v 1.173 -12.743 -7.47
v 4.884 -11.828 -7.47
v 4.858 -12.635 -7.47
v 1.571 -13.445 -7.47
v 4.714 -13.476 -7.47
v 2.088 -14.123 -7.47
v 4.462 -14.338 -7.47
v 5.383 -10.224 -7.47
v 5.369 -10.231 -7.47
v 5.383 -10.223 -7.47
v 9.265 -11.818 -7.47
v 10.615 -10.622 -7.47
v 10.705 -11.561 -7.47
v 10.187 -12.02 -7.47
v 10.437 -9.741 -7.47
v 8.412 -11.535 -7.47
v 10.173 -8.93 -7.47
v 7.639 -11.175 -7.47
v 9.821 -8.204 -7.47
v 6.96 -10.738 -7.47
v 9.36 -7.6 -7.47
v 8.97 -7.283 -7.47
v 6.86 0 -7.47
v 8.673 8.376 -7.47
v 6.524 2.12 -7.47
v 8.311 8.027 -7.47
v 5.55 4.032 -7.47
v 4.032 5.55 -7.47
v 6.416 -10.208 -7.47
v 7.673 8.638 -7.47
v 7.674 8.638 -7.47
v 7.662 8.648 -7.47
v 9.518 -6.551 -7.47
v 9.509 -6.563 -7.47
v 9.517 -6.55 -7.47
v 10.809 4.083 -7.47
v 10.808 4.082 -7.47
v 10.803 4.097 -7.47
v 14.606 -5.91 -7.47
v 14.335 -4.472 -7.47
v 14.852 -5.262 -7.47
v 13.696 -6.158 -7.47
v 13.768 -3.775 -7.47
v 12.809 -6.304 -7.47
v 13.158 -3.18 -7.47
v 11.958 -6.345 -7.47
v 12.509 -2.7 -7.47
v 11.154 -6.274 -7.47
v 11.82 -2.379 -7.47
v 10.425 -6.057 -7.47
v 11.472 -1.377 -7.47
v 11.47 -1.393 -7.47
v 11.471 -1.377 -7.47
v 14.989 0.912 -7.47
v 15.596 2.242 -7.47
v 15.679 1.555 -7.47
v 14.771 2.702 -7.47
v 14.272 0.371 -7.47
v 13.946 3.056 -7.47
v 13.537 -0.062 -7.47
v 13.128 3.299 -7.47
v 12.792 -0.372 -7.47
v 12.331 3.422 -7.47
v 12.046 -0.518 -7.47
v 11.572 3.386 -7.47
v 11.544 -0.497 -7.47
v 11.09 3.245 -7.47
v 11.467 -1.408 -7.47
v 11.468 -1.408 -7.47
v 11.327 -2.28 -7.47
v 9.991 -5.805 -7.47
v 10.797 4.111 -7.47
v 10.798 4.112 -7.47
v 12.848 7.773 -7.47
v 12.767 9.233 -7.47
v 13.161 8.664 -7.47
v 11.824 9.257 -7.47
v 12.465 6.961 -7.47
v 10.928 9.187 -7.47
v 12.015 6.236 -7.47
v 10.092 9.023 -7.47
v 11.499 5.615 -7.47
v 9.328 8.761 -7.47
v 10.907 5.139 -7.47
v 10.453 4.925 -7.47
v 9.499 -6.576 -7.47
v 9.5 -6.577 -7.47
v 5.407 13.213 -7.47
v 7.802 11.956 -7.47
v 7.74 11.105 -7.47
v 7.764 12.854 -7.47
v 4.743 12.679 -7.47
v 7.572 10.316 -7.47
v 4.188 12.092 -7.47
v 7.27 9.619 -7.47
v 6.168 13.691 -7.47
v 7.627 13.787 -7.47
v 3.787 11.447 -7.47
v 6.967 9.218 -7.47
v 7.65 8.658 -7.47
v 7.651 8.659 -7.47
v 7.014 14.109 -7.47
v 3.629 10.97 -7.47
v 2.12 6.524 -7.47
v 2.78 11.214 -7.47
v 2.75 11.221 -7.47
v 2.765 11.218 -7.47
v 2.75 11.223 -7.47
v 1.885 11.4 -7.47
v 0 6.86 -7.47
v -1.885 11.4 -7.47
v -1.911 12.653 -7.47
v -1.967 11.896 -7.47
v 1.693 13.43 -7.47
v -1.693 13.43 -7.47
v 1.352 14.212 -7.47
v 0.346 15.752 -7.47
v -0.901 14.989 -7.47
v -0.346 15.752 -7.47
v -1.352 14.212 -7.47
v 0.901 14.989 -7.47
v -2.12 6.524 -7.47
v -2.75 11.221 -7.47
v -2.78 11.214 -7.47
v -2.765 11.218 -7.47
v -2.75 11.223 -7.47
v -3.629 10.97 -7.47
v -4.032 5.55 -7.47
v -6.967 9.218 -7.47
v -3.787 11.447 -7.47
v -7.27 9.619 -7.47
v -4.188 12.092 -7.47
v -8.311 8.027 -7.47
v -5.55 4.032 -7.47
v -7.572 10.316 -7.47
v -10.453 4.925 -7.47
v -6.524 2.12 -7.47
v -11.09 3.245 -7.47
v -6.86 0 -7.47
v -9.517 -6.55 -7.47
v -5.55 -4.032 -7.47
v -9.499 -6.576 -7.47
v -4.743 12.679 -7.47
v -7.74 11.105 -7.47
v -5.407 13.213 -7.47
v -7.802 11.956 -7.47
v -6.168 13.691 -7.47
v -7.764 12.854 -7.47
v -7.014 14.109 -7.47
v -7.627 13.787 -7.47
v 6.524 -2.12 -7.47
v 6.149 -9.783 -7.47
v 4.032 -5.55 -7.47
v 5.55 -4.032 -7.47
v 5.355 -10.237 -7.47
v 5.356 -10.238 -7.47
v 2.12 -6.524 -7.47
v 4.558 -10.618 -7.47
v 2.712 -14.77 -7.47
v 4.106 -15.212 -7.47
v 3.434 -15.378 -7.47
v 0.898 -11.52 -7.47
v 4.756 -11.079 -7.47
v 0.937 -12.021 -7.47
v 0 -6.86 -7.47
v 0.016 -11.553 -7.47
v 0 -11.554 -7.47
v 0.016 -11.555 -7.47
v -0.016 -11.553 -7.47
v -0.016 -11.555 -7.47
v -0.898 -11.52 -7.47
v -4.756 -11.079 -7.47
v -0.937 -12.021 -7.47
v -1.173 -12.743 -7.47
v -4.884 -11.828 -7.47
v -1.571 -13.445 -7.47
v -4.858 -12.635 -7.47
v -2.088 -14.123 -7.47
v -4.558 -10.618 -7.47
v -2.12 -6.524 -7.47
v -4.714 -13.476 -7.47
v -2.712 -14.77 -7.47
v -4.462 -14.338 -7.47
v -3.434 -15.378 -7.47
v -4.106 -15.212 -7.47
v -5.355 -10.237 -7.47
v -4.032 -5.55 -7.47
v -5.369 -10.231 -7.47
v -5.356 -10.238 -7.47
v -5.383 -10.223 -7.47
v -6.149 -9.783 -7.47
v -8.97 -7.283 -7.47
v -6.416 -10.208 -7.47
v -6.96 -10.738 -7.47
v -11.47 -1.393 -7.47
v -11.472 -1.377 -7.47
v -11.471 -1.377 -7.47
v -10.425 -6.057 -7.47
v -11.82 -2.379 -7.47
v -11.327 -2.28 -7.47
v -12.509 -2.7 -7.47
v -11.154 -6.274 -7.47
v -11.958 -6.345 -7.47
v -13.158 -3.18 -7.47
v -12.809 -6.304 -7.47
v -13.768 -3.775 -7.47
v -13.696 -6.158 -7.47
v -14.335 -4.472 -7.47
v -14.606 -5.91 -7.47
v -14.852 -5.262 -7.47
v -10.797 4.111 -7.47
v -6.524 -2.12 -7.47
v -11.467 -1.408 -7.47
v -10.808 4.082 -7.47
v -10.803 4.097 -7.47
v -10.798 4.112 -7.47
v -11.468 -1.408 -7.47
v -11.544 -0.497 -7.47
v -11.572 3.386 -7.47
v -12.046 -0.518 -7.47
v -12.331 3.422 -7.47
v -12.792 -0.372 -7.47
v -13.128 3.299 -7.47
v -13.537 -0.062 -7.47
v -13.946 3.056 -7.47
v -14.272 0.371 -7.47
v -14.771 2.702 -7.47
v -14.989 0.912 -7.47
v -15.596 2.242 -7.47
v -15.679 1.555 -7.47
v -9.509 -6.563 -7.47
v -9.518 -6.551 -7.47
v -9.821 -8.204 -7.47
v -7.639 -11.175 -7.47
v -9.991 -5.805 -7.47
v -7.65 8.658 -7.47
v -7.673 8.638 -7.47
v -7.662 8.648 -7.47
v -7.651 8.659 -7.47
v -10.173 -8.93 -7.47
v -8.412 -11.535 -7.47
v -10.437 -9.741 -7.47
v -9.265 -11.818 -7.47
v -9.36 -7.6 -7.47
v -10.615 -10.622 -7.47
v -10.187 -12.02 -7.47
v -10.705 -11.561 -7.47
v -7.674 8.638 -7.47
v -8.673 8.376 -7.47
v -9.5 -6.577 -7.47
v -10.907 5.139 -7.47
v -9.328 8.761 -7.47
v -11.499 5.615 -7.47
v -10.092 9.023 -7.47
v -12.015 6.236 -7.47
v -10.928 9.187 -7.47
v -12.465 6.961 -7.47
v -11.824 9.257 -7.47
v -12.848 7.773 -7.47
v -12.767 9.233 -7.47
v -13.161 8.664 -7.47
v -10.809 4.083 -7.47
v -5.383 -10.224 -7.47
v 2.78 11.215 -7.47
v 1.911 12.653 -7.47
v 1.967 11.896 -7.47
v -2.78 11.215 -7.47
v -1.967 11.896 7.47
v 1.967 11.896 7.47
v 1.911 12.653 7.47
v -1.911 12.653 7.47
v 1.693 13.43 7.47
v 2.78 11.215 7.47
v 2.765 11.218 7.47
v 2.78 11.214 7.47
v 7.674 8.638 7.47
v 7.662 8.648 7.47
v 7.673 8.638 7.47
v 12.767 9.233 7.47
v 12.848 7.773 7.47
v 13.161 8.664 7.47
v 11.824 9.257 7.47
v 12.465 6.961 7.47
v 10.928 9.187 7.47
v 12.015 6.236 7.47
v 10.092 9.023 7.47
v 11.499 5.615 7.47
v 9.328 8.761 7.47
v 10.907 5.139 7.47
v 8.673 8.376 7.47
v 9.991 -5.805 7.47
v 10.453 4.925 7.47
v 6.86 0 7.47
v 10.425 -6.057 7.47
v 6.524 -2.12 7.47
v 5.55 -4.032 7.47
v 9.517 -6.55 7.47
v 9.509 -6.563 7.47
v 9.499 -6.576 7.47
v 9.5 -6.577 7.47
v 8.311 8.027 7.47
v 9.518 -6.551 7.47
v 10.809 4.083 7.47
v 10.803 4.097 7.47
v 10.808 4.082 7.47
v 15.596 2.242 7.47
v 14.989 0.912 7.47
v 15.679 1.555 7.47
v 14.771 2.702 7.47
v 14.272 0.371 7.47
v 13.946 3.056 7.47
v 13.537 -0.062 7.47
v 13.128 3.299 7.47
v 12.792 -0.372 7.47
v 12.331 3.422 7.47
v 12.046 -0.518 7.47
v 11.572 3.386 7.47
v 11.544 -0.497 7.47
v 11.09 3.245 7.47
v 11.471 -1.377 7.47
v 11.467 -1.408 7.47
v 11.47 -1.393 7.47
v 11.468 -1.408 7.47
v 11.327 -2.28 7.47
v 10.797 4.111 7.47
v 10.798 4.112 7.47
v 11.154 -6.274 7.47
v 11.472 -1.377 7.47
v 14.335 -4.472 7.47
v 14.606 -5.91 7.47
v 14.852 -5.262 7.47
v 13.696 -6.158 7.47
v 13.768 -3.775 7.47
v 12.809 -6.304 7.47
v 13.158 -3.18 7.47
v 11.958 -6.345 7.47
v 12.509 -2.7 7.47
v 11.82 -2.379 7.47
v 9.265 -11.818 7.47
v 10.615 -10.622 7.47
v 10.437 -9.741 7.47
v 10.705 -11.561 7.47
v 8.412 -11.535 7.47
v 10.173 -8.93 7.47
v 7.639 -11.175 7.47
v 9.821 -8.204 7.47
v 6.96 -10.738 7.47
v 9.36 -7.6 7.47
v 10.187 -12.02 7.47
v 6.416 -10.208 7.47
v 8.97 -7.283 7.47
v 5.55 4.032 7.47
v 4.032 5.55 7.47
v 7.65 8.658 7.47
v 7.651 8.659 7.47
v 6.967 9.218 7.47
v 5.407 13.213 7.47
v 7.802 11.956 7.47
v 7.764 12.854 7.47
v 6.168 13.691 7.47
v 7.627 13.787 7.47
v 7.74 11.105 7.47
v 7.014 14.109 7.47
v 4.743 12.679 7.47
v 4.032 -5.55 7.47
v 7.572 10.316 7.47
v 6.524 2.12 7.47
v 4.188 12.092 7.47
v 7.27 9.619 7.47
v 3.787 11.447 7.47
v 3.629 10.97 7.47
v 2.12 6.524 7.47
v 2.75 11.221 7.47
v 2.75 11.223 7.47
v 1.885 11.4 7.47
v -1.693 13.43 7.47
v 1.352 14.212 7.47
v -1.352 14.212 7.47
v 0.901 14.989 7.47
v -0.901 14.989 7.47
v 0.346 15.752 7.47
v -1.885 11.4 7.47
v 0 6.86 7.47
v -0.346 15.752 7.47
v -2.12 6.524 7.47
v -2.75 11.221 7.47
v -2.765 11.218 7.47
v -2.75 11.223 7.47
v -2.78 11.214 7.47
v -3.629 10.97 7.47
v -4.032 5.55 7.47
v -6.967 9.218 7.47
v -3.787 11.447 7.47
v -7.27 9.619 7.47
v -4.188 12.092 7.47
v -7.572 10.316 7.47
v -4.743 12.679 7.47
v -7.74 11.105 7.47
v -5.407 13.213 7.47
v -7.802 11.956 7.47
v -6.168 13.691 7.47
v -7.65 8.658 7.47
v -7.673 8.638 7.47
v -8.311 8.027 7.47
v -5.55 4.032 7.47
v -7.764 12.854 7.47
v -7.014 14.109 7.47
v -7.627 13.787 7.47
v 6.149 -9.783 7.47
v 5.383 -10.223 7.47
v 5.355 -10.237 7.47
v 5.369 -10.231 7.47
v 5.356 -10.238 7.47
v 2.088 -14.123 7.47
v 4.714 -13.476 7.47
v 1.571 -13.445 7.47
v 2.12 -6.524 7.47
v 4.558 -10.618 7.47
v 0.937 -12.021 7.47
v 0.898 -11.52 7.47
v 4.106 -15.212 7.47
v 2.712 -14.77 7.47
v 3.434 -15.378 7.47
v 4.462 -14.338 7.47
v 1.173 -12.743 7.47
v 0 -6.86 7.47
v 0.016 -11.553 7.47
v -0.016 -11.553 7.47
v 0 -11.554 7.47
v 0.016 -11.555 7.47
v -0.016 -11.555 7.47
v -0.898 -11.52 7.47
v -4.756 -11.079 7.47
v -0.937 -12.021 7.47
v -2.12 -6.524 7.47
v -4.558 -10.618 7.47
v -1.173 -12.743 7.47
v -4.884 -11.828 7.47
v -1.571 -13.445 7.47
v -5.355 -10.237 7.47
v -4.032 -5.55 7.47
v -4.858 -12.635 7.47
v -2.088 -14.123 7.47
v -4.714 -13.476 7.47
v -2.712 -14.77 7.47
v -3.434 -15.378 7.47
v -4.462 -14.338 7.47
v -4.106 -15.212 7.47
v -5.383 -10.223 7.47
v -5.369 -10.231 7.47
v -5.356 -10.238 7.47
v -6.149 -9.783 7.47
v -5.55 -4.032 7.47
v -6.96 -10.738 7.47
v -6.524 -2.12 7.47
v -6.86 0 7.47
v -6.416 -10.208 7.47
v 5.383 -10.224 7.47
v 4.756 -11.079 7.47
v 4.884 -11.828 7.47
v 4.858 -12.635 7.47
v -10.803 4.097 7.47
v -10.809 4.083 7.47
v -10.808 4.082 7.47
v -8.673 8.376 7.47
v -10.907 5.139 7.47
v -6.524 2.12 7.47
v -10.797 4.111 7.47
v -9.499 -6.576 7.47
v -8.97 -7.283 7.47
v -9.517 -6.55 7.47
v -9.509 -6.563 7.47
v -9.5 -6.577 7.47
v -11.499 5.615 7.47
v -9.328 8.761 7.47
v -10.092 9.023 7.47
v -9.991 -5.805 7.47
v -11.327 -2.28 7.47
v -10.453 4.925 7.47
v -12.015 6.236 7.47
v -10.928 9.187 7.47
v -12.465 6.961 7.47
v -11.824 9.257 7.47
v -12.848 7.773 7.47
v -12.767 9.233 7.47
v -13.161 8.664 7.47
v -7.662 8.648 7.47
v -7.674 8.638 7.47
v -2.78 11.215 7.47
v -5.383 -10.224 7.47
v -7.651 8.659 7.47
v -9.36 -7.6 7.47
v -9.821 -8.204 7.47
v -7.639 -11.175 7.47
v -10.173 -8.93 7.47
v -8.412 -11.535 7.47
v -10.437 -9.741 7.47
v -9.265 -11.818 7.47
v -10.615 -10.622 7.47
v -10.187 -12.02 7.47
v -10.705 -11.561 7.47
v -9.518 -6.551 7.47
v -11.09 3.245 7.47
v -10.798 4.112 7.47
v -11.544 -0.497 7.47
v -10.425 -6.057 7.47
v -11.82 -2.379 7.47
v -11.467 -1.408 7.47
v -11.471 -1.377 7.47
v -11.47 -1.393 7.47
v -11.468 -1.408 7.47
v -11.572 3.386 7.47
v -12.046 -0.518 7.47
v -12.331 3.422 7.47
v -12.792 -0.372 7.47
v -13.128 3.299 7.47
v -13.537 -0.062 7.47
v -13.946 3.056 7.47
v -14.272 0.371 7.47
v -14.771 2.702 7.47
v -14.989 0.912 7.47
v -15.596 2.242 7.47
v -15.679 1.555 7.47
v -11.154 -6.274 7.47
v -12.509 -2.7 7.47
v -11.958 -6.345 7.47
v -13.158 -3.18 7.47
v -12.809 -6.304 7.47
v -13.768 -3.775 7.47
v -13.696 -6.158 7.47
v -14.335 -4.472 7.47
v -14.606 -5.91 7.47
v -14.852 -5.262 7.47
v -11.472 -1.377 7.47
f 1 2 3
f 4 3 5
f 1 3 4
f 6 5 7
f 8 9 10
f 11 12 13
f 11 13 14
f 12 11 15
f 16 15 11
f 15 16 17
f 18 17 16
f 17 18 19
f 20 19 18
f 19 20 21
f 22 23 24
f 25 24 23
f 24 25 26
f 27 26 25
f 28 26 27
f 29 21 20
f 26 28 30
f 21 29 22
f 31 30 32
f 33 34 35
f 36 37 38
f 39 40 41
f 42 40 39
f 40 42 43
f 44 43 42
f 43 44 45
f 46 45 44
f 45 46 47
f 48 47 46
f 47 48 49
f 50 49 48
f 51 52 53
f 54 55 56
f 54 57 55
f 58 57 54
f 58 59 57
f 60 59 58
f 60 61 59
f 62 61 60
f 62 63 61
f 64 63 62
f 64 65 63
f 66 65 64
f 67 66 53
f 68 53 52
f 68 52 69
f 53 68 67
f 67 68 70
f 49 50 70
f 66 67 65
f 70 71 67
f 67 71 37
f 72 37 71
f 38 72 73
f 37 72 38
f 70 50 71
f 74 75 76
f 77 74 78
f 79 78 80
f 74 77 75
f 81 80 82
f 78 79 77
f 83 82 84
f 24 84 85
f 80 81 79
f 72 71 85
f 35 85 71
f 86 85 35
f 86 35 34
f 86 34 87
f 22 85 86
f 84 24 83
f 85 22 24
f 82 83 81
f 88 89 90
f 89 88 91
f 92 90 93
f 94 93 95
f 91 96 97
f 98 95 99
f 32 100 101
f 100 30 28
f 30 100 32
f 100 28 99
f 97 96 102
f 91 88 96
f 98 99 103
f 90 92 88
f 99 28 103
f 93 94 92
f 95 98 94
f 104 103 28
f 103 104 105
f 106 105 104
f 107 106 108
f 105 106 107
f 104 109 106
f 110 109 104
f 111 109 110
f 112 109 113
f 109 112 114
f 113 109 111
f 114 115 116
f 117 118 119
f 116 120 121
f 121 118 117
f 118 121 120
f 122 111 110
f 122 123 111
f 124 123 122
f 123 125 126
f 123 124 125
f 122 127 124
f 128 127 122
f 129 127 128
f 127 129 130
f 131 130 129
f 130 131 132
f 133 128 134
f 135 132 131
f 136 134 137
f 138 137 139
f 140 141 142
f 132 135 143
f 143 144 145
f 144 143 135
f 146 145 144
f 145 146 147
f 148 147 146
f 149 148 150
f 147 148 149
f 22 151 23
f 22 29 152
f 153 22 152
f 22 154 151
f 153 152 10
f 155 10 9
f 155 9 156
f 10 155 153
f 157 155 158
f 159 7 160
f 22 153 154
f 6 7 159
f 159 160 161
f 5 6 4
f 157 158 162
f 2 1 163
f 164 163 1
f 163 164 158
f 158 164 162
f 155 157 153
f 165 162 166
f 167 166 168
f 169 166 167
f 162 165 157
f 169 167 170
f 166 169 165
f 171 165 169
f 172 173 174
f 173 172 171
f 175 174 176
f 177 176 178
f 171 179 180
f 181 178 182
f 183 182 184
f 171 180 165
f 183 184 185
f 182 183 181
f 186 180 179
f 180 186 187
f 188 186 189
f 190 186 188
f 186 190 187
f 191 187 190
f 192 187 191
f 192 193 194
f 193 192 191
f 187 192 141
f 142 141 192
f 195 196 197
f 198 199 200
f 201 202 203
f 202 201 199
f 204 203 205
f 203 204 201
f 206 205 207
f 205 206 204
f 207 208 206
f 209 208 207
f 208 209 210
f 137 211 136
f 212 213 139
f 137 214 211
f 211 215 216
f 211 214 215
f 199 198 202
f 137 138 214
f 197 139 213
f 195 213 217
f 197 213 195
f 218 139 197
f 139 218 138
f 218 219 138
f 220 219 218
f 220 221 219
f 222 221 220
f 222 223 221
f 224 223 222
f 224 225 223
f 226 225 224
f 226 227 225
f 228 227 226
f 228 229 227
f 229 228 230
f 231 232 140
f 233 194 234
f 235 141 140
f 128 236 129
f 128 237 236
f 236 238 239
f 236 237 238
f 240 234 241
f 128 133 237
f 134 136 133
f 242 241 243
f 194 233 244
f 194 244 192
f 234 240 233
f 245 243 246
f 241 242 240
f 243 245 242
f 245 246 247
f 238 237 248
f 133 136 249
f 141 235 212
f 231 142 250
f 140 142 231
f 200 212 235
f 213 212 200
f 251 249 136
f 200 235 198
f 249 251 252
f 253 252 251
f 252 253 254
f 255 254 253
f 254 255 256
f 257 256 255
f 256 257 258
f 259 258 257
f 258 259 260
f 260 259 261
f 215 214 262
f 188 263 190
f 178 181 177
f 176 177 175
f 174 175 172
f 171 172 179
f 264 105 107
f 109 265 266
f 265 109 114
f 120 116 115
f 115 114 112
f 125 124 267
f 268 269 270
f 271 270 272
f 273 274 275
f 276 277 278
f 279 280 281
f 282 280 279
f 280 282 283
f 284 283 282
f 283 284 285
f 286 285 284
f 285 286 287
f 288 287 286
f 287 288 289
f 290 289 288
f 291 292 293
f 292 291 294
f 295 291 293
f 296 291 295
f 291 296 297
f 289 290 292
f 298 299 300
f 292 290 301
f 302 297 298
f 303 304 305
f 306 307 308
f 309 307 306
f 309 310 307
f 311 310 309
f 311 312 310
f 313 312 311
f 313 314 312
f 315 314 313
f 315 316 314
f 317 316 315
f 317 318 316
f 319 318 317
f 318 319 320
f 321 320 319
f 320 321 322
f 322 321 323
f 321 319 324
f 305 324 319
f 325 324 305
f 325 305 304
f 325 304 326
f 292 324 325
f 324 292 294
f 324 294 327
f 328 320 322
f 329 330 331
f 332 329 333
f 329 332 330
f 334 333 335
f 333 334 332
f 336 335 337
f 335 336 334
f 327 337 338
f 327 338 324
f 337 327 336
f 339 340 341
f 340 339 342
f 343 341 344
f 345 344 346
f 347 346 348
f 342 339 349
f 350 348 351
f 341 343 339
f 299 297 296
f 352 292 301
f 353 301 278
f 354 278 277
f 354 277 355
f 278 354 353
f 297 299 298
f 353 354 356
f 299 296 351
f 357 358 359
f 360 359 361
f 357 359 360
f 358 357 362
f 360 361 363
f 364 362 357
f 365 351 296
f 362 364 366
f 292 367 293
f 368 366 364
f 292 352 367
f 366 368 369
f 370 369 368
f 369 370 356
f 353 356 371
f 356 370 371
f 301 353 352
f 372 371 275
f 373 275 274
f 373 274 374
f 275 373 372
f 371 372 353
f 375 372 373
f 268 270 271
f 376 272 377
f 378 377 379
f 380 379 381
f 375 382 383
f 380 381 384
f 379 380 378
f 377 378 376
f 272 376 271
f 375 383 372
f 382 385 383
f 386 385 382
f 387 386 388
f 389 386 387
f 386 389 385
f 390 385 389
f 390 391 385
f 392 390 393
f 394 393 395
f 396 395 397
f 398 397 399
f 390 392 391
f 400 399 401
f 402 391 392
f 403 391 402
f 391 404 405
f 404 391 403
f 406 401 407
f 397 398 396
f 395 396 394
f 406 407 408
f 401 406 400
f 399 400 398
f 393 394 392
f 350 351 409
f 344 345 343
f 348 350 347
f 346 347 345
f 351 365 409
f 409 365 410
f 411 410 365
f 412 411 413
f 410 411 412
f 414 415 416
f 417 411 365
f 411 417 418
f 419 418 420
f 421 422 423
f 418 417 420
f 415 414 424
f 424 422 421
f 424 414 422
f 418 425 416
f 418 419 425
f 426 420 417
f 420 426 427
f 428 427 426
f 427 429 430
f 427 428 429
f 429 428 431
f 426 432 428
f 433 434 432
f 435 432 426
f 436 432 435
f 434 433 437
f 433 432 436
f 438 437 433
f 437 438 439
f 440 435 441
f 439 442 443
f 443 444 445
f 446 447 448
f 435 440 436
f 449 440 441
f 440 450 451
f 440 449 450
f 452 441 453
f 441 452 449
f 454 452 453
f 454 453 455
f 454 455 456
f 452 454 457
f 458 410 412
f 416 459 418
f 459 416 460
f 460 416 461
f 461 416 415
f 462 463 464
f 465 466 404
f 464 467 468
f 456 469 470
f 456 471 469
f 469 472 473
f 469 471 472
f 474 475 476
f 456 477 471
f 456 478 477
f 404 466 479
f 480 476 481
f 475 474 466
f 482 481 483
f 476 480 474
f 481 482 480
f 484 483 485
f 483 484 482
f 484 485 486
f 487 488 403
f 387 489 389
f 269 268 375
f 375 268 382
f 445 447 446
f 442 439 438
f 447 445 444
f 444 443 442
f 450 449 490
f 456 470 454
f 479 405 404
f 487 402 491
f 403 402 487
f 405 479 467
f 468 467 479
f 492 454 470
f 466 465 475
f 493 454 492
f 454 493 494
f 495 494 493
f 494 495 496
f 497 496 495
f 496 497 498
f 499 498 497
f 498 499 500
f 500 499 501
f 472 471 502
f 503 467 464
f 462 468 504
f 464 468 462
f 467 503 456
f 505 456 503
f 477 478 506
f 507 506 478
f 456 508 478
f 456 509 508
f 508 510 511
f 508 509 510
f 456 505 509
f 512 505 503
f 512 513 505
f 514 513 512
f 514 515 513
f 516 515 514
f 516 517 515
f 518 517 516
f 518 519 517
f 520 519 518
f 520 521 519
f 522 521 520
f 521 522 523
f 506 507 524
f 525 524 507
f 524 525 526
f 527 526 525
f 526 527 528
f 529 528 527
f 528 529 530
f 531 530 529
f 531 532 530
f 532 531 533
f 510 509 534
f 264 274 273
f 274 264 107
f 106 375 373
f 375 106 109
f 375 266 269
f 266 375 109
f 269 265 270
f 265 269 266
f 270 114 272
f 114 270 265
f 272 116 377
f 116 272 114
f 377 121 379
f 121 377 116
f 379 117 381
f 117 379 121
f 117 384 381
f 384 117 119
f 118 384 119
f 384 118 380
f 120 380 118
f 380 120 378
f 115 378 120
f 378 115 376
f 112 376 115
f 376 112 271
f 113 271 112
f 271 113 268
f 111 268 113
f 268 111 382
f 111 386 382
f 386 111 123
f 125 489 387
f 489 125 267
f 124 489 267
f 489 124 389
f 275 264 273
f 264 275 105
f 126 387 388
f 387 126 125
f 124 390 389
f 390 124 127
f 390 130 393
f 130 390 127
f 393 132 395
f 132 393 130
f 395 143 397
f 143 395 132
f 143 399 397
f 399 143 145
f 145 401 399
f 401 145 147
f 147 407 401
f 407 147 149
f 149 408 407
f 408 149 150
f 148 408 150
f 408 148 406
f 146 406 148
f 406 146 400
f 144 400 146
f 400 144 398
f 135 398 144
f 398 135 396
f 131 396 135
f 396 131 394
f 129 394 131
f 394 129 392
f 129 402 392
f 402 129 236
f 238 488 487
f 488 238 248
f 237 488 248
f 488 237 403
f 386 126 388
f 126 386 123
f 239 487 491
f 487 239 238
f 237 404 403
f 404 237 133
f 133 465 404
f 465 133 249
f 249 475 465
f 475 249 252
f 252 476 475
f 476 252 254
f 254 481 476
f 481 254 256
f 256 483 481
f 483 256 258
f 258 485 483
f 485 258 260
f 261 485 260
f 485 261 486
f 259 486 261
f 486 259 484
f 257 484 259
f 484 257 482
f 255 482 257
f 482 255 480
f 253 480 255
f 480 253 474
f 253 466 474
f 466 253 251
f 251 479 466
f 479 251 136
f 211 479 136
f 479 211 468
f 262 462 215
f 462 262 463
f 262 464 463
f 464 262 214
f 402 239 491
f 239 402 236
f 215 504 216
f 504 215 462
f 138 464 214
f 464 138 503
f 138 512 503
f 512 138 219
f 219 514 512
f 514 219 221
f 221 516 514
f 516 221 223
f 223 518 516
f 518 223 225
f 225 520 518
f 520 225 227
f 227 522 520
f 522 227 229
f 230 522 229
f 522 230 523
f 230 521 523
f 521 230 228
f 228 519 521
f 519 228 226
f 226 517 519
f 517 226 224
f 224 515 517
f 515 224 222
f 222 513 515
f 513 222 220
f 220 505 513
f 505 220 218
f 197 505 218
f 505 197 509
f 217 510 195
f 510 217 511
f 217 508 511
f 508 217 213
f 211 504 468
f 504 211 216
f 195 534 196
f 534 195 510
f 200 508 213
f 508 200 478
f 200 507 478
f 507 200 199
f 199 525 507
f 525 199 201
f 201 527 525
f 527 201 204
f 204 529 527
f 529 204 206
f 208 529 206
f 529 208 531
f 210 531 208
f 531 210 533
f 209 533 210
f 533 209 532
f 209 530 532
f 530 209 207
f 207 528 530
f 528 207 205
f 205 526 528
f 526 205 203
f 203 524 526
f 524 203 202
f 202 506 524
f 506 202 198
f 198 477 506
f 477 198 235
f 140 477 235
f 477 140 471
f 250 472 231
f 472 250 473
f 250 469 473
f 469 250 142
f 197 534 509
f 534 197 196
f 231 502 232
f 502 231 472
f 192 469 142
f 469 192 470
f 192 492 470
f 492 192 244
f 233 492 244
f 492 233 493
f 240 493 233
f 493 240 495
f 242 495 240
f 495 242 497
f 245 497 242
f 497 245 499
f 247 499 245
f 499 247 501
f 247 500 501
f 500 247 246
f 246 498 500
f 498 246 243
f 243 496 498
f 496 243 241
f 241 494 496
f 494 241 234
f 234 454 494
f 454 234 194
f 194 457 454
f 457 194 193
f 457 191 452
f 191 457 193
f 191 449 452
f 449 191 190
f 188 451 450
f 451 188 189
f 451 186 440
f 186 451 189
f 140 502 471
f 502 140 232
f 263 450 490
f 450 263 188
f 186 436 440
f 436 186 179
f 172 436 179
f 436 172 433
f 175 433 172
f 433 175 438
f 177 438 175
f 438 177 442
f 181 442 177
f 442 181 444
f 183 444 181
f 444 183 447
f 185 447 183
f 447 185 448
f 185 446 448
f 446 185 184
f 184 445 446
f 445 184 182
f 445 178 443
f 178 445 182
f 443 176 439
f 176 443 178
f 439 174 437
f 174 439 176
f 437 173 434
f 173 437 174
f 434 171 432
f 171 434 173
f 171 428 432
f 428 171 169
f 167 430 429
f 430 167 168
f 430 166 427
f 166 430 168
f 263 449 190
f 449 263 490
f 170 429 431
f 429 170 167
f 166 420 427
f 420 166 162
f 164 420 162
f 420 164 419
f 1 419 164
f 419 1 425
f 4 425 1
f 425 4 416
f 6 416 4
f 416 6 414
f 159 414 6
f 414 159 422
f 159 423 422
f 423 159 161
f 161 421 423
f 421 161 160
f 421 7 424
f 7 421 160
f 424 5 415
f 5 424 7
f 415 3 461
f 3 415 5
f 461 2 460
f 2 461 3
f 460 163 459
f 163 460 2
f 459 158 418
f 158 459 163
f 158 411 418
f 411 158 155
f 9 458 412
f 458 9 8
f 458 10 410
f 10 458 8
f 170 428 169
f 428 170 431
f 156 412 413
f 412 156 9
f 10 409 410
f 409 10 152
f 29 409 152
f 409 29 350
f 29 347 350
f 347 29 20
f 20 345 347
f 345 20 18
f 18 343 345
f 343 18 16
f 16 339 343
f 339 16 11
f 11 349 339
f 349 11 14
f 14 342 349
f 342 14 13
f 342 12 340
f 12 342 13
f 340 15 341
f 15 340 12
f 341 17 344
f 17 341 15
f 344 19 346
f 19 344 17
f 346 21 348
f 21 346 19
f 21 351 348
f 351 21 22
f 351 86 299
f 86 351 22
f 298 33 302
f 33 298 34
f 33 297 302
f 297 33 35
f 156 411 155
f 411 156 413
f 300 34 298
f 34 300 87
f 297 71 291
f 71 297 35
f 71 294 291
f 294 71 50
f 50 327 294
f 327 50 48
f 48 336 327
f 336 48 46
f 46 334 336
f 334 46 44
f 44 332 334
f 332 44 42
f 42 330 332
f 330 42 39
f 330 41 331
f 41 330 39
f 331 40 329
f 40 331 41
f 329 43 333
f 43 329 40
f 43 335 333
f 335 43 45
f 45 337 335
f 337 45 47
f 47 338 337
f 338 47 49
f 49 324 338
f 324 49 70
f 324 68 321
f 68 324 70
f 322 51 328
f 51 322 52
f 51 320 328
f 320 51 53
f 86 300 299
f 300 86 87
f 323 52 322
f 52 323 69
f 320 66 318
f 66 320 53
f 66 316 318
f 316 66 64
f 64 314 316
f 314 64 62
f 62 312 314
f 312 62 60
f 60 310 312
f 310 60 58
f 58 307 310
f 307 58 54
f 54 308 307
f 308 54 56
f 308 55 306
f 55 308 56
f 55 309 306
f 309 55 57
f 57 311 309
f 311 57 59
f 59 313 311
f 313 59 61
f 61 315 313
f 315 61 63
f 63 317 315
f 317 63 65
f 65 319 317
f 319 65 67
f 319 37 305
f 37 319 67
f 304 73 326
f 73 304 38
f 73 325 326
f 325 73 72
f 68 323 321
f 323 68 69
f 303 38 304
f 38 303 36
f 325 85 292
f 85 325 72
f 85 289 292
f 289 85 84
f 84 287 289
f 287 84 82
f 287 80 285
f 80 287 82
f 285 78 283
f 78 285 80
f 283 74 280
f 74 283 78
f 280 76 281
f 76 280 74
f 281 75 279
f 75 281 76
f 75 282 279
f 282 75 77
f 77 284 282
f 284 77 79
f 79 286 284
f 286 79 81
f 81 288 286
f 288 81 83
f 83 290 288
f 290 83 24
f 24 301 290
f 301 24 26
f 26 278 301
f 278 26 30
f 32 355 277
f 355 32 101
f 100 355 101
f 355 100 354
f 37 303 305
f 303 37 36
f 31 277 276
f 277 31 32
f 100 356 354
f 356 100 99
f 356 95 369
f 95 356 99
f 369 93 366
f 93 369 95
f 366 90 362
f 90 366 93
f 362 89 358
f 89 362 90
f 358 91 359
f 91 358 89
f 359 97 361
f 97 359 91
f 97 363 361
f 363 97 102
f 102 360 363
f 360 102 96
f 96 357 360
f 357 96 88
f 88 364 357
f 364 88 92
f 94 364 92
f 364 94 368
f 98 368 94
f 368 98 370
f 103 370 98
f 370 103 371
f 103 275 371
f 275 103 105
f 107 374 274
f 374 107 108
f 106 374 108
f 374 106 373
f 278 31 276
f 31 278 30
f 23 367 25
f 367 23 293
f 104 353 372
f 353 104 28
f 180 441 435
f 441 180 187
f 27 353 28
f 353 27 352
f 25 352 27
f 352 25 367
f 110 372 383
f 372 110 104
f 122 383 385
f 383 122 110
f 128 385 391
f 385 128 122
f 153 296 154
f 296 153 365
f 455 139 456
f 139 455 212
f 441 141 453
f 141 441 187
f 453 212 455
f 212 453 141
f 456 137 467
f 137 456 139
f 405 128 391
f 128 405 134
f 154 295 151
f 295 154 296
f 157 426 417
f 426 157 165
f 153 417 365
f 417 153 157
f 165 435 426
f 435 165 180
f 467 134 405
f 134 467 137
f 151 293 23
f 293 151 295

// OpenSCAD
use <./libraries/OpenSCAD/publicDomainGearV1.1.scad>
gear(
	mm_per_tooth = 6.6,
	number_of_teeth = 13,
	thickness = 14.94,
	hole_diameter = 13.72,
	twist = 0,
	teeth_to_hide = 0,
	pressure_angle = 28,
	clearance = 0.0,
	backlash = 0.0
);
